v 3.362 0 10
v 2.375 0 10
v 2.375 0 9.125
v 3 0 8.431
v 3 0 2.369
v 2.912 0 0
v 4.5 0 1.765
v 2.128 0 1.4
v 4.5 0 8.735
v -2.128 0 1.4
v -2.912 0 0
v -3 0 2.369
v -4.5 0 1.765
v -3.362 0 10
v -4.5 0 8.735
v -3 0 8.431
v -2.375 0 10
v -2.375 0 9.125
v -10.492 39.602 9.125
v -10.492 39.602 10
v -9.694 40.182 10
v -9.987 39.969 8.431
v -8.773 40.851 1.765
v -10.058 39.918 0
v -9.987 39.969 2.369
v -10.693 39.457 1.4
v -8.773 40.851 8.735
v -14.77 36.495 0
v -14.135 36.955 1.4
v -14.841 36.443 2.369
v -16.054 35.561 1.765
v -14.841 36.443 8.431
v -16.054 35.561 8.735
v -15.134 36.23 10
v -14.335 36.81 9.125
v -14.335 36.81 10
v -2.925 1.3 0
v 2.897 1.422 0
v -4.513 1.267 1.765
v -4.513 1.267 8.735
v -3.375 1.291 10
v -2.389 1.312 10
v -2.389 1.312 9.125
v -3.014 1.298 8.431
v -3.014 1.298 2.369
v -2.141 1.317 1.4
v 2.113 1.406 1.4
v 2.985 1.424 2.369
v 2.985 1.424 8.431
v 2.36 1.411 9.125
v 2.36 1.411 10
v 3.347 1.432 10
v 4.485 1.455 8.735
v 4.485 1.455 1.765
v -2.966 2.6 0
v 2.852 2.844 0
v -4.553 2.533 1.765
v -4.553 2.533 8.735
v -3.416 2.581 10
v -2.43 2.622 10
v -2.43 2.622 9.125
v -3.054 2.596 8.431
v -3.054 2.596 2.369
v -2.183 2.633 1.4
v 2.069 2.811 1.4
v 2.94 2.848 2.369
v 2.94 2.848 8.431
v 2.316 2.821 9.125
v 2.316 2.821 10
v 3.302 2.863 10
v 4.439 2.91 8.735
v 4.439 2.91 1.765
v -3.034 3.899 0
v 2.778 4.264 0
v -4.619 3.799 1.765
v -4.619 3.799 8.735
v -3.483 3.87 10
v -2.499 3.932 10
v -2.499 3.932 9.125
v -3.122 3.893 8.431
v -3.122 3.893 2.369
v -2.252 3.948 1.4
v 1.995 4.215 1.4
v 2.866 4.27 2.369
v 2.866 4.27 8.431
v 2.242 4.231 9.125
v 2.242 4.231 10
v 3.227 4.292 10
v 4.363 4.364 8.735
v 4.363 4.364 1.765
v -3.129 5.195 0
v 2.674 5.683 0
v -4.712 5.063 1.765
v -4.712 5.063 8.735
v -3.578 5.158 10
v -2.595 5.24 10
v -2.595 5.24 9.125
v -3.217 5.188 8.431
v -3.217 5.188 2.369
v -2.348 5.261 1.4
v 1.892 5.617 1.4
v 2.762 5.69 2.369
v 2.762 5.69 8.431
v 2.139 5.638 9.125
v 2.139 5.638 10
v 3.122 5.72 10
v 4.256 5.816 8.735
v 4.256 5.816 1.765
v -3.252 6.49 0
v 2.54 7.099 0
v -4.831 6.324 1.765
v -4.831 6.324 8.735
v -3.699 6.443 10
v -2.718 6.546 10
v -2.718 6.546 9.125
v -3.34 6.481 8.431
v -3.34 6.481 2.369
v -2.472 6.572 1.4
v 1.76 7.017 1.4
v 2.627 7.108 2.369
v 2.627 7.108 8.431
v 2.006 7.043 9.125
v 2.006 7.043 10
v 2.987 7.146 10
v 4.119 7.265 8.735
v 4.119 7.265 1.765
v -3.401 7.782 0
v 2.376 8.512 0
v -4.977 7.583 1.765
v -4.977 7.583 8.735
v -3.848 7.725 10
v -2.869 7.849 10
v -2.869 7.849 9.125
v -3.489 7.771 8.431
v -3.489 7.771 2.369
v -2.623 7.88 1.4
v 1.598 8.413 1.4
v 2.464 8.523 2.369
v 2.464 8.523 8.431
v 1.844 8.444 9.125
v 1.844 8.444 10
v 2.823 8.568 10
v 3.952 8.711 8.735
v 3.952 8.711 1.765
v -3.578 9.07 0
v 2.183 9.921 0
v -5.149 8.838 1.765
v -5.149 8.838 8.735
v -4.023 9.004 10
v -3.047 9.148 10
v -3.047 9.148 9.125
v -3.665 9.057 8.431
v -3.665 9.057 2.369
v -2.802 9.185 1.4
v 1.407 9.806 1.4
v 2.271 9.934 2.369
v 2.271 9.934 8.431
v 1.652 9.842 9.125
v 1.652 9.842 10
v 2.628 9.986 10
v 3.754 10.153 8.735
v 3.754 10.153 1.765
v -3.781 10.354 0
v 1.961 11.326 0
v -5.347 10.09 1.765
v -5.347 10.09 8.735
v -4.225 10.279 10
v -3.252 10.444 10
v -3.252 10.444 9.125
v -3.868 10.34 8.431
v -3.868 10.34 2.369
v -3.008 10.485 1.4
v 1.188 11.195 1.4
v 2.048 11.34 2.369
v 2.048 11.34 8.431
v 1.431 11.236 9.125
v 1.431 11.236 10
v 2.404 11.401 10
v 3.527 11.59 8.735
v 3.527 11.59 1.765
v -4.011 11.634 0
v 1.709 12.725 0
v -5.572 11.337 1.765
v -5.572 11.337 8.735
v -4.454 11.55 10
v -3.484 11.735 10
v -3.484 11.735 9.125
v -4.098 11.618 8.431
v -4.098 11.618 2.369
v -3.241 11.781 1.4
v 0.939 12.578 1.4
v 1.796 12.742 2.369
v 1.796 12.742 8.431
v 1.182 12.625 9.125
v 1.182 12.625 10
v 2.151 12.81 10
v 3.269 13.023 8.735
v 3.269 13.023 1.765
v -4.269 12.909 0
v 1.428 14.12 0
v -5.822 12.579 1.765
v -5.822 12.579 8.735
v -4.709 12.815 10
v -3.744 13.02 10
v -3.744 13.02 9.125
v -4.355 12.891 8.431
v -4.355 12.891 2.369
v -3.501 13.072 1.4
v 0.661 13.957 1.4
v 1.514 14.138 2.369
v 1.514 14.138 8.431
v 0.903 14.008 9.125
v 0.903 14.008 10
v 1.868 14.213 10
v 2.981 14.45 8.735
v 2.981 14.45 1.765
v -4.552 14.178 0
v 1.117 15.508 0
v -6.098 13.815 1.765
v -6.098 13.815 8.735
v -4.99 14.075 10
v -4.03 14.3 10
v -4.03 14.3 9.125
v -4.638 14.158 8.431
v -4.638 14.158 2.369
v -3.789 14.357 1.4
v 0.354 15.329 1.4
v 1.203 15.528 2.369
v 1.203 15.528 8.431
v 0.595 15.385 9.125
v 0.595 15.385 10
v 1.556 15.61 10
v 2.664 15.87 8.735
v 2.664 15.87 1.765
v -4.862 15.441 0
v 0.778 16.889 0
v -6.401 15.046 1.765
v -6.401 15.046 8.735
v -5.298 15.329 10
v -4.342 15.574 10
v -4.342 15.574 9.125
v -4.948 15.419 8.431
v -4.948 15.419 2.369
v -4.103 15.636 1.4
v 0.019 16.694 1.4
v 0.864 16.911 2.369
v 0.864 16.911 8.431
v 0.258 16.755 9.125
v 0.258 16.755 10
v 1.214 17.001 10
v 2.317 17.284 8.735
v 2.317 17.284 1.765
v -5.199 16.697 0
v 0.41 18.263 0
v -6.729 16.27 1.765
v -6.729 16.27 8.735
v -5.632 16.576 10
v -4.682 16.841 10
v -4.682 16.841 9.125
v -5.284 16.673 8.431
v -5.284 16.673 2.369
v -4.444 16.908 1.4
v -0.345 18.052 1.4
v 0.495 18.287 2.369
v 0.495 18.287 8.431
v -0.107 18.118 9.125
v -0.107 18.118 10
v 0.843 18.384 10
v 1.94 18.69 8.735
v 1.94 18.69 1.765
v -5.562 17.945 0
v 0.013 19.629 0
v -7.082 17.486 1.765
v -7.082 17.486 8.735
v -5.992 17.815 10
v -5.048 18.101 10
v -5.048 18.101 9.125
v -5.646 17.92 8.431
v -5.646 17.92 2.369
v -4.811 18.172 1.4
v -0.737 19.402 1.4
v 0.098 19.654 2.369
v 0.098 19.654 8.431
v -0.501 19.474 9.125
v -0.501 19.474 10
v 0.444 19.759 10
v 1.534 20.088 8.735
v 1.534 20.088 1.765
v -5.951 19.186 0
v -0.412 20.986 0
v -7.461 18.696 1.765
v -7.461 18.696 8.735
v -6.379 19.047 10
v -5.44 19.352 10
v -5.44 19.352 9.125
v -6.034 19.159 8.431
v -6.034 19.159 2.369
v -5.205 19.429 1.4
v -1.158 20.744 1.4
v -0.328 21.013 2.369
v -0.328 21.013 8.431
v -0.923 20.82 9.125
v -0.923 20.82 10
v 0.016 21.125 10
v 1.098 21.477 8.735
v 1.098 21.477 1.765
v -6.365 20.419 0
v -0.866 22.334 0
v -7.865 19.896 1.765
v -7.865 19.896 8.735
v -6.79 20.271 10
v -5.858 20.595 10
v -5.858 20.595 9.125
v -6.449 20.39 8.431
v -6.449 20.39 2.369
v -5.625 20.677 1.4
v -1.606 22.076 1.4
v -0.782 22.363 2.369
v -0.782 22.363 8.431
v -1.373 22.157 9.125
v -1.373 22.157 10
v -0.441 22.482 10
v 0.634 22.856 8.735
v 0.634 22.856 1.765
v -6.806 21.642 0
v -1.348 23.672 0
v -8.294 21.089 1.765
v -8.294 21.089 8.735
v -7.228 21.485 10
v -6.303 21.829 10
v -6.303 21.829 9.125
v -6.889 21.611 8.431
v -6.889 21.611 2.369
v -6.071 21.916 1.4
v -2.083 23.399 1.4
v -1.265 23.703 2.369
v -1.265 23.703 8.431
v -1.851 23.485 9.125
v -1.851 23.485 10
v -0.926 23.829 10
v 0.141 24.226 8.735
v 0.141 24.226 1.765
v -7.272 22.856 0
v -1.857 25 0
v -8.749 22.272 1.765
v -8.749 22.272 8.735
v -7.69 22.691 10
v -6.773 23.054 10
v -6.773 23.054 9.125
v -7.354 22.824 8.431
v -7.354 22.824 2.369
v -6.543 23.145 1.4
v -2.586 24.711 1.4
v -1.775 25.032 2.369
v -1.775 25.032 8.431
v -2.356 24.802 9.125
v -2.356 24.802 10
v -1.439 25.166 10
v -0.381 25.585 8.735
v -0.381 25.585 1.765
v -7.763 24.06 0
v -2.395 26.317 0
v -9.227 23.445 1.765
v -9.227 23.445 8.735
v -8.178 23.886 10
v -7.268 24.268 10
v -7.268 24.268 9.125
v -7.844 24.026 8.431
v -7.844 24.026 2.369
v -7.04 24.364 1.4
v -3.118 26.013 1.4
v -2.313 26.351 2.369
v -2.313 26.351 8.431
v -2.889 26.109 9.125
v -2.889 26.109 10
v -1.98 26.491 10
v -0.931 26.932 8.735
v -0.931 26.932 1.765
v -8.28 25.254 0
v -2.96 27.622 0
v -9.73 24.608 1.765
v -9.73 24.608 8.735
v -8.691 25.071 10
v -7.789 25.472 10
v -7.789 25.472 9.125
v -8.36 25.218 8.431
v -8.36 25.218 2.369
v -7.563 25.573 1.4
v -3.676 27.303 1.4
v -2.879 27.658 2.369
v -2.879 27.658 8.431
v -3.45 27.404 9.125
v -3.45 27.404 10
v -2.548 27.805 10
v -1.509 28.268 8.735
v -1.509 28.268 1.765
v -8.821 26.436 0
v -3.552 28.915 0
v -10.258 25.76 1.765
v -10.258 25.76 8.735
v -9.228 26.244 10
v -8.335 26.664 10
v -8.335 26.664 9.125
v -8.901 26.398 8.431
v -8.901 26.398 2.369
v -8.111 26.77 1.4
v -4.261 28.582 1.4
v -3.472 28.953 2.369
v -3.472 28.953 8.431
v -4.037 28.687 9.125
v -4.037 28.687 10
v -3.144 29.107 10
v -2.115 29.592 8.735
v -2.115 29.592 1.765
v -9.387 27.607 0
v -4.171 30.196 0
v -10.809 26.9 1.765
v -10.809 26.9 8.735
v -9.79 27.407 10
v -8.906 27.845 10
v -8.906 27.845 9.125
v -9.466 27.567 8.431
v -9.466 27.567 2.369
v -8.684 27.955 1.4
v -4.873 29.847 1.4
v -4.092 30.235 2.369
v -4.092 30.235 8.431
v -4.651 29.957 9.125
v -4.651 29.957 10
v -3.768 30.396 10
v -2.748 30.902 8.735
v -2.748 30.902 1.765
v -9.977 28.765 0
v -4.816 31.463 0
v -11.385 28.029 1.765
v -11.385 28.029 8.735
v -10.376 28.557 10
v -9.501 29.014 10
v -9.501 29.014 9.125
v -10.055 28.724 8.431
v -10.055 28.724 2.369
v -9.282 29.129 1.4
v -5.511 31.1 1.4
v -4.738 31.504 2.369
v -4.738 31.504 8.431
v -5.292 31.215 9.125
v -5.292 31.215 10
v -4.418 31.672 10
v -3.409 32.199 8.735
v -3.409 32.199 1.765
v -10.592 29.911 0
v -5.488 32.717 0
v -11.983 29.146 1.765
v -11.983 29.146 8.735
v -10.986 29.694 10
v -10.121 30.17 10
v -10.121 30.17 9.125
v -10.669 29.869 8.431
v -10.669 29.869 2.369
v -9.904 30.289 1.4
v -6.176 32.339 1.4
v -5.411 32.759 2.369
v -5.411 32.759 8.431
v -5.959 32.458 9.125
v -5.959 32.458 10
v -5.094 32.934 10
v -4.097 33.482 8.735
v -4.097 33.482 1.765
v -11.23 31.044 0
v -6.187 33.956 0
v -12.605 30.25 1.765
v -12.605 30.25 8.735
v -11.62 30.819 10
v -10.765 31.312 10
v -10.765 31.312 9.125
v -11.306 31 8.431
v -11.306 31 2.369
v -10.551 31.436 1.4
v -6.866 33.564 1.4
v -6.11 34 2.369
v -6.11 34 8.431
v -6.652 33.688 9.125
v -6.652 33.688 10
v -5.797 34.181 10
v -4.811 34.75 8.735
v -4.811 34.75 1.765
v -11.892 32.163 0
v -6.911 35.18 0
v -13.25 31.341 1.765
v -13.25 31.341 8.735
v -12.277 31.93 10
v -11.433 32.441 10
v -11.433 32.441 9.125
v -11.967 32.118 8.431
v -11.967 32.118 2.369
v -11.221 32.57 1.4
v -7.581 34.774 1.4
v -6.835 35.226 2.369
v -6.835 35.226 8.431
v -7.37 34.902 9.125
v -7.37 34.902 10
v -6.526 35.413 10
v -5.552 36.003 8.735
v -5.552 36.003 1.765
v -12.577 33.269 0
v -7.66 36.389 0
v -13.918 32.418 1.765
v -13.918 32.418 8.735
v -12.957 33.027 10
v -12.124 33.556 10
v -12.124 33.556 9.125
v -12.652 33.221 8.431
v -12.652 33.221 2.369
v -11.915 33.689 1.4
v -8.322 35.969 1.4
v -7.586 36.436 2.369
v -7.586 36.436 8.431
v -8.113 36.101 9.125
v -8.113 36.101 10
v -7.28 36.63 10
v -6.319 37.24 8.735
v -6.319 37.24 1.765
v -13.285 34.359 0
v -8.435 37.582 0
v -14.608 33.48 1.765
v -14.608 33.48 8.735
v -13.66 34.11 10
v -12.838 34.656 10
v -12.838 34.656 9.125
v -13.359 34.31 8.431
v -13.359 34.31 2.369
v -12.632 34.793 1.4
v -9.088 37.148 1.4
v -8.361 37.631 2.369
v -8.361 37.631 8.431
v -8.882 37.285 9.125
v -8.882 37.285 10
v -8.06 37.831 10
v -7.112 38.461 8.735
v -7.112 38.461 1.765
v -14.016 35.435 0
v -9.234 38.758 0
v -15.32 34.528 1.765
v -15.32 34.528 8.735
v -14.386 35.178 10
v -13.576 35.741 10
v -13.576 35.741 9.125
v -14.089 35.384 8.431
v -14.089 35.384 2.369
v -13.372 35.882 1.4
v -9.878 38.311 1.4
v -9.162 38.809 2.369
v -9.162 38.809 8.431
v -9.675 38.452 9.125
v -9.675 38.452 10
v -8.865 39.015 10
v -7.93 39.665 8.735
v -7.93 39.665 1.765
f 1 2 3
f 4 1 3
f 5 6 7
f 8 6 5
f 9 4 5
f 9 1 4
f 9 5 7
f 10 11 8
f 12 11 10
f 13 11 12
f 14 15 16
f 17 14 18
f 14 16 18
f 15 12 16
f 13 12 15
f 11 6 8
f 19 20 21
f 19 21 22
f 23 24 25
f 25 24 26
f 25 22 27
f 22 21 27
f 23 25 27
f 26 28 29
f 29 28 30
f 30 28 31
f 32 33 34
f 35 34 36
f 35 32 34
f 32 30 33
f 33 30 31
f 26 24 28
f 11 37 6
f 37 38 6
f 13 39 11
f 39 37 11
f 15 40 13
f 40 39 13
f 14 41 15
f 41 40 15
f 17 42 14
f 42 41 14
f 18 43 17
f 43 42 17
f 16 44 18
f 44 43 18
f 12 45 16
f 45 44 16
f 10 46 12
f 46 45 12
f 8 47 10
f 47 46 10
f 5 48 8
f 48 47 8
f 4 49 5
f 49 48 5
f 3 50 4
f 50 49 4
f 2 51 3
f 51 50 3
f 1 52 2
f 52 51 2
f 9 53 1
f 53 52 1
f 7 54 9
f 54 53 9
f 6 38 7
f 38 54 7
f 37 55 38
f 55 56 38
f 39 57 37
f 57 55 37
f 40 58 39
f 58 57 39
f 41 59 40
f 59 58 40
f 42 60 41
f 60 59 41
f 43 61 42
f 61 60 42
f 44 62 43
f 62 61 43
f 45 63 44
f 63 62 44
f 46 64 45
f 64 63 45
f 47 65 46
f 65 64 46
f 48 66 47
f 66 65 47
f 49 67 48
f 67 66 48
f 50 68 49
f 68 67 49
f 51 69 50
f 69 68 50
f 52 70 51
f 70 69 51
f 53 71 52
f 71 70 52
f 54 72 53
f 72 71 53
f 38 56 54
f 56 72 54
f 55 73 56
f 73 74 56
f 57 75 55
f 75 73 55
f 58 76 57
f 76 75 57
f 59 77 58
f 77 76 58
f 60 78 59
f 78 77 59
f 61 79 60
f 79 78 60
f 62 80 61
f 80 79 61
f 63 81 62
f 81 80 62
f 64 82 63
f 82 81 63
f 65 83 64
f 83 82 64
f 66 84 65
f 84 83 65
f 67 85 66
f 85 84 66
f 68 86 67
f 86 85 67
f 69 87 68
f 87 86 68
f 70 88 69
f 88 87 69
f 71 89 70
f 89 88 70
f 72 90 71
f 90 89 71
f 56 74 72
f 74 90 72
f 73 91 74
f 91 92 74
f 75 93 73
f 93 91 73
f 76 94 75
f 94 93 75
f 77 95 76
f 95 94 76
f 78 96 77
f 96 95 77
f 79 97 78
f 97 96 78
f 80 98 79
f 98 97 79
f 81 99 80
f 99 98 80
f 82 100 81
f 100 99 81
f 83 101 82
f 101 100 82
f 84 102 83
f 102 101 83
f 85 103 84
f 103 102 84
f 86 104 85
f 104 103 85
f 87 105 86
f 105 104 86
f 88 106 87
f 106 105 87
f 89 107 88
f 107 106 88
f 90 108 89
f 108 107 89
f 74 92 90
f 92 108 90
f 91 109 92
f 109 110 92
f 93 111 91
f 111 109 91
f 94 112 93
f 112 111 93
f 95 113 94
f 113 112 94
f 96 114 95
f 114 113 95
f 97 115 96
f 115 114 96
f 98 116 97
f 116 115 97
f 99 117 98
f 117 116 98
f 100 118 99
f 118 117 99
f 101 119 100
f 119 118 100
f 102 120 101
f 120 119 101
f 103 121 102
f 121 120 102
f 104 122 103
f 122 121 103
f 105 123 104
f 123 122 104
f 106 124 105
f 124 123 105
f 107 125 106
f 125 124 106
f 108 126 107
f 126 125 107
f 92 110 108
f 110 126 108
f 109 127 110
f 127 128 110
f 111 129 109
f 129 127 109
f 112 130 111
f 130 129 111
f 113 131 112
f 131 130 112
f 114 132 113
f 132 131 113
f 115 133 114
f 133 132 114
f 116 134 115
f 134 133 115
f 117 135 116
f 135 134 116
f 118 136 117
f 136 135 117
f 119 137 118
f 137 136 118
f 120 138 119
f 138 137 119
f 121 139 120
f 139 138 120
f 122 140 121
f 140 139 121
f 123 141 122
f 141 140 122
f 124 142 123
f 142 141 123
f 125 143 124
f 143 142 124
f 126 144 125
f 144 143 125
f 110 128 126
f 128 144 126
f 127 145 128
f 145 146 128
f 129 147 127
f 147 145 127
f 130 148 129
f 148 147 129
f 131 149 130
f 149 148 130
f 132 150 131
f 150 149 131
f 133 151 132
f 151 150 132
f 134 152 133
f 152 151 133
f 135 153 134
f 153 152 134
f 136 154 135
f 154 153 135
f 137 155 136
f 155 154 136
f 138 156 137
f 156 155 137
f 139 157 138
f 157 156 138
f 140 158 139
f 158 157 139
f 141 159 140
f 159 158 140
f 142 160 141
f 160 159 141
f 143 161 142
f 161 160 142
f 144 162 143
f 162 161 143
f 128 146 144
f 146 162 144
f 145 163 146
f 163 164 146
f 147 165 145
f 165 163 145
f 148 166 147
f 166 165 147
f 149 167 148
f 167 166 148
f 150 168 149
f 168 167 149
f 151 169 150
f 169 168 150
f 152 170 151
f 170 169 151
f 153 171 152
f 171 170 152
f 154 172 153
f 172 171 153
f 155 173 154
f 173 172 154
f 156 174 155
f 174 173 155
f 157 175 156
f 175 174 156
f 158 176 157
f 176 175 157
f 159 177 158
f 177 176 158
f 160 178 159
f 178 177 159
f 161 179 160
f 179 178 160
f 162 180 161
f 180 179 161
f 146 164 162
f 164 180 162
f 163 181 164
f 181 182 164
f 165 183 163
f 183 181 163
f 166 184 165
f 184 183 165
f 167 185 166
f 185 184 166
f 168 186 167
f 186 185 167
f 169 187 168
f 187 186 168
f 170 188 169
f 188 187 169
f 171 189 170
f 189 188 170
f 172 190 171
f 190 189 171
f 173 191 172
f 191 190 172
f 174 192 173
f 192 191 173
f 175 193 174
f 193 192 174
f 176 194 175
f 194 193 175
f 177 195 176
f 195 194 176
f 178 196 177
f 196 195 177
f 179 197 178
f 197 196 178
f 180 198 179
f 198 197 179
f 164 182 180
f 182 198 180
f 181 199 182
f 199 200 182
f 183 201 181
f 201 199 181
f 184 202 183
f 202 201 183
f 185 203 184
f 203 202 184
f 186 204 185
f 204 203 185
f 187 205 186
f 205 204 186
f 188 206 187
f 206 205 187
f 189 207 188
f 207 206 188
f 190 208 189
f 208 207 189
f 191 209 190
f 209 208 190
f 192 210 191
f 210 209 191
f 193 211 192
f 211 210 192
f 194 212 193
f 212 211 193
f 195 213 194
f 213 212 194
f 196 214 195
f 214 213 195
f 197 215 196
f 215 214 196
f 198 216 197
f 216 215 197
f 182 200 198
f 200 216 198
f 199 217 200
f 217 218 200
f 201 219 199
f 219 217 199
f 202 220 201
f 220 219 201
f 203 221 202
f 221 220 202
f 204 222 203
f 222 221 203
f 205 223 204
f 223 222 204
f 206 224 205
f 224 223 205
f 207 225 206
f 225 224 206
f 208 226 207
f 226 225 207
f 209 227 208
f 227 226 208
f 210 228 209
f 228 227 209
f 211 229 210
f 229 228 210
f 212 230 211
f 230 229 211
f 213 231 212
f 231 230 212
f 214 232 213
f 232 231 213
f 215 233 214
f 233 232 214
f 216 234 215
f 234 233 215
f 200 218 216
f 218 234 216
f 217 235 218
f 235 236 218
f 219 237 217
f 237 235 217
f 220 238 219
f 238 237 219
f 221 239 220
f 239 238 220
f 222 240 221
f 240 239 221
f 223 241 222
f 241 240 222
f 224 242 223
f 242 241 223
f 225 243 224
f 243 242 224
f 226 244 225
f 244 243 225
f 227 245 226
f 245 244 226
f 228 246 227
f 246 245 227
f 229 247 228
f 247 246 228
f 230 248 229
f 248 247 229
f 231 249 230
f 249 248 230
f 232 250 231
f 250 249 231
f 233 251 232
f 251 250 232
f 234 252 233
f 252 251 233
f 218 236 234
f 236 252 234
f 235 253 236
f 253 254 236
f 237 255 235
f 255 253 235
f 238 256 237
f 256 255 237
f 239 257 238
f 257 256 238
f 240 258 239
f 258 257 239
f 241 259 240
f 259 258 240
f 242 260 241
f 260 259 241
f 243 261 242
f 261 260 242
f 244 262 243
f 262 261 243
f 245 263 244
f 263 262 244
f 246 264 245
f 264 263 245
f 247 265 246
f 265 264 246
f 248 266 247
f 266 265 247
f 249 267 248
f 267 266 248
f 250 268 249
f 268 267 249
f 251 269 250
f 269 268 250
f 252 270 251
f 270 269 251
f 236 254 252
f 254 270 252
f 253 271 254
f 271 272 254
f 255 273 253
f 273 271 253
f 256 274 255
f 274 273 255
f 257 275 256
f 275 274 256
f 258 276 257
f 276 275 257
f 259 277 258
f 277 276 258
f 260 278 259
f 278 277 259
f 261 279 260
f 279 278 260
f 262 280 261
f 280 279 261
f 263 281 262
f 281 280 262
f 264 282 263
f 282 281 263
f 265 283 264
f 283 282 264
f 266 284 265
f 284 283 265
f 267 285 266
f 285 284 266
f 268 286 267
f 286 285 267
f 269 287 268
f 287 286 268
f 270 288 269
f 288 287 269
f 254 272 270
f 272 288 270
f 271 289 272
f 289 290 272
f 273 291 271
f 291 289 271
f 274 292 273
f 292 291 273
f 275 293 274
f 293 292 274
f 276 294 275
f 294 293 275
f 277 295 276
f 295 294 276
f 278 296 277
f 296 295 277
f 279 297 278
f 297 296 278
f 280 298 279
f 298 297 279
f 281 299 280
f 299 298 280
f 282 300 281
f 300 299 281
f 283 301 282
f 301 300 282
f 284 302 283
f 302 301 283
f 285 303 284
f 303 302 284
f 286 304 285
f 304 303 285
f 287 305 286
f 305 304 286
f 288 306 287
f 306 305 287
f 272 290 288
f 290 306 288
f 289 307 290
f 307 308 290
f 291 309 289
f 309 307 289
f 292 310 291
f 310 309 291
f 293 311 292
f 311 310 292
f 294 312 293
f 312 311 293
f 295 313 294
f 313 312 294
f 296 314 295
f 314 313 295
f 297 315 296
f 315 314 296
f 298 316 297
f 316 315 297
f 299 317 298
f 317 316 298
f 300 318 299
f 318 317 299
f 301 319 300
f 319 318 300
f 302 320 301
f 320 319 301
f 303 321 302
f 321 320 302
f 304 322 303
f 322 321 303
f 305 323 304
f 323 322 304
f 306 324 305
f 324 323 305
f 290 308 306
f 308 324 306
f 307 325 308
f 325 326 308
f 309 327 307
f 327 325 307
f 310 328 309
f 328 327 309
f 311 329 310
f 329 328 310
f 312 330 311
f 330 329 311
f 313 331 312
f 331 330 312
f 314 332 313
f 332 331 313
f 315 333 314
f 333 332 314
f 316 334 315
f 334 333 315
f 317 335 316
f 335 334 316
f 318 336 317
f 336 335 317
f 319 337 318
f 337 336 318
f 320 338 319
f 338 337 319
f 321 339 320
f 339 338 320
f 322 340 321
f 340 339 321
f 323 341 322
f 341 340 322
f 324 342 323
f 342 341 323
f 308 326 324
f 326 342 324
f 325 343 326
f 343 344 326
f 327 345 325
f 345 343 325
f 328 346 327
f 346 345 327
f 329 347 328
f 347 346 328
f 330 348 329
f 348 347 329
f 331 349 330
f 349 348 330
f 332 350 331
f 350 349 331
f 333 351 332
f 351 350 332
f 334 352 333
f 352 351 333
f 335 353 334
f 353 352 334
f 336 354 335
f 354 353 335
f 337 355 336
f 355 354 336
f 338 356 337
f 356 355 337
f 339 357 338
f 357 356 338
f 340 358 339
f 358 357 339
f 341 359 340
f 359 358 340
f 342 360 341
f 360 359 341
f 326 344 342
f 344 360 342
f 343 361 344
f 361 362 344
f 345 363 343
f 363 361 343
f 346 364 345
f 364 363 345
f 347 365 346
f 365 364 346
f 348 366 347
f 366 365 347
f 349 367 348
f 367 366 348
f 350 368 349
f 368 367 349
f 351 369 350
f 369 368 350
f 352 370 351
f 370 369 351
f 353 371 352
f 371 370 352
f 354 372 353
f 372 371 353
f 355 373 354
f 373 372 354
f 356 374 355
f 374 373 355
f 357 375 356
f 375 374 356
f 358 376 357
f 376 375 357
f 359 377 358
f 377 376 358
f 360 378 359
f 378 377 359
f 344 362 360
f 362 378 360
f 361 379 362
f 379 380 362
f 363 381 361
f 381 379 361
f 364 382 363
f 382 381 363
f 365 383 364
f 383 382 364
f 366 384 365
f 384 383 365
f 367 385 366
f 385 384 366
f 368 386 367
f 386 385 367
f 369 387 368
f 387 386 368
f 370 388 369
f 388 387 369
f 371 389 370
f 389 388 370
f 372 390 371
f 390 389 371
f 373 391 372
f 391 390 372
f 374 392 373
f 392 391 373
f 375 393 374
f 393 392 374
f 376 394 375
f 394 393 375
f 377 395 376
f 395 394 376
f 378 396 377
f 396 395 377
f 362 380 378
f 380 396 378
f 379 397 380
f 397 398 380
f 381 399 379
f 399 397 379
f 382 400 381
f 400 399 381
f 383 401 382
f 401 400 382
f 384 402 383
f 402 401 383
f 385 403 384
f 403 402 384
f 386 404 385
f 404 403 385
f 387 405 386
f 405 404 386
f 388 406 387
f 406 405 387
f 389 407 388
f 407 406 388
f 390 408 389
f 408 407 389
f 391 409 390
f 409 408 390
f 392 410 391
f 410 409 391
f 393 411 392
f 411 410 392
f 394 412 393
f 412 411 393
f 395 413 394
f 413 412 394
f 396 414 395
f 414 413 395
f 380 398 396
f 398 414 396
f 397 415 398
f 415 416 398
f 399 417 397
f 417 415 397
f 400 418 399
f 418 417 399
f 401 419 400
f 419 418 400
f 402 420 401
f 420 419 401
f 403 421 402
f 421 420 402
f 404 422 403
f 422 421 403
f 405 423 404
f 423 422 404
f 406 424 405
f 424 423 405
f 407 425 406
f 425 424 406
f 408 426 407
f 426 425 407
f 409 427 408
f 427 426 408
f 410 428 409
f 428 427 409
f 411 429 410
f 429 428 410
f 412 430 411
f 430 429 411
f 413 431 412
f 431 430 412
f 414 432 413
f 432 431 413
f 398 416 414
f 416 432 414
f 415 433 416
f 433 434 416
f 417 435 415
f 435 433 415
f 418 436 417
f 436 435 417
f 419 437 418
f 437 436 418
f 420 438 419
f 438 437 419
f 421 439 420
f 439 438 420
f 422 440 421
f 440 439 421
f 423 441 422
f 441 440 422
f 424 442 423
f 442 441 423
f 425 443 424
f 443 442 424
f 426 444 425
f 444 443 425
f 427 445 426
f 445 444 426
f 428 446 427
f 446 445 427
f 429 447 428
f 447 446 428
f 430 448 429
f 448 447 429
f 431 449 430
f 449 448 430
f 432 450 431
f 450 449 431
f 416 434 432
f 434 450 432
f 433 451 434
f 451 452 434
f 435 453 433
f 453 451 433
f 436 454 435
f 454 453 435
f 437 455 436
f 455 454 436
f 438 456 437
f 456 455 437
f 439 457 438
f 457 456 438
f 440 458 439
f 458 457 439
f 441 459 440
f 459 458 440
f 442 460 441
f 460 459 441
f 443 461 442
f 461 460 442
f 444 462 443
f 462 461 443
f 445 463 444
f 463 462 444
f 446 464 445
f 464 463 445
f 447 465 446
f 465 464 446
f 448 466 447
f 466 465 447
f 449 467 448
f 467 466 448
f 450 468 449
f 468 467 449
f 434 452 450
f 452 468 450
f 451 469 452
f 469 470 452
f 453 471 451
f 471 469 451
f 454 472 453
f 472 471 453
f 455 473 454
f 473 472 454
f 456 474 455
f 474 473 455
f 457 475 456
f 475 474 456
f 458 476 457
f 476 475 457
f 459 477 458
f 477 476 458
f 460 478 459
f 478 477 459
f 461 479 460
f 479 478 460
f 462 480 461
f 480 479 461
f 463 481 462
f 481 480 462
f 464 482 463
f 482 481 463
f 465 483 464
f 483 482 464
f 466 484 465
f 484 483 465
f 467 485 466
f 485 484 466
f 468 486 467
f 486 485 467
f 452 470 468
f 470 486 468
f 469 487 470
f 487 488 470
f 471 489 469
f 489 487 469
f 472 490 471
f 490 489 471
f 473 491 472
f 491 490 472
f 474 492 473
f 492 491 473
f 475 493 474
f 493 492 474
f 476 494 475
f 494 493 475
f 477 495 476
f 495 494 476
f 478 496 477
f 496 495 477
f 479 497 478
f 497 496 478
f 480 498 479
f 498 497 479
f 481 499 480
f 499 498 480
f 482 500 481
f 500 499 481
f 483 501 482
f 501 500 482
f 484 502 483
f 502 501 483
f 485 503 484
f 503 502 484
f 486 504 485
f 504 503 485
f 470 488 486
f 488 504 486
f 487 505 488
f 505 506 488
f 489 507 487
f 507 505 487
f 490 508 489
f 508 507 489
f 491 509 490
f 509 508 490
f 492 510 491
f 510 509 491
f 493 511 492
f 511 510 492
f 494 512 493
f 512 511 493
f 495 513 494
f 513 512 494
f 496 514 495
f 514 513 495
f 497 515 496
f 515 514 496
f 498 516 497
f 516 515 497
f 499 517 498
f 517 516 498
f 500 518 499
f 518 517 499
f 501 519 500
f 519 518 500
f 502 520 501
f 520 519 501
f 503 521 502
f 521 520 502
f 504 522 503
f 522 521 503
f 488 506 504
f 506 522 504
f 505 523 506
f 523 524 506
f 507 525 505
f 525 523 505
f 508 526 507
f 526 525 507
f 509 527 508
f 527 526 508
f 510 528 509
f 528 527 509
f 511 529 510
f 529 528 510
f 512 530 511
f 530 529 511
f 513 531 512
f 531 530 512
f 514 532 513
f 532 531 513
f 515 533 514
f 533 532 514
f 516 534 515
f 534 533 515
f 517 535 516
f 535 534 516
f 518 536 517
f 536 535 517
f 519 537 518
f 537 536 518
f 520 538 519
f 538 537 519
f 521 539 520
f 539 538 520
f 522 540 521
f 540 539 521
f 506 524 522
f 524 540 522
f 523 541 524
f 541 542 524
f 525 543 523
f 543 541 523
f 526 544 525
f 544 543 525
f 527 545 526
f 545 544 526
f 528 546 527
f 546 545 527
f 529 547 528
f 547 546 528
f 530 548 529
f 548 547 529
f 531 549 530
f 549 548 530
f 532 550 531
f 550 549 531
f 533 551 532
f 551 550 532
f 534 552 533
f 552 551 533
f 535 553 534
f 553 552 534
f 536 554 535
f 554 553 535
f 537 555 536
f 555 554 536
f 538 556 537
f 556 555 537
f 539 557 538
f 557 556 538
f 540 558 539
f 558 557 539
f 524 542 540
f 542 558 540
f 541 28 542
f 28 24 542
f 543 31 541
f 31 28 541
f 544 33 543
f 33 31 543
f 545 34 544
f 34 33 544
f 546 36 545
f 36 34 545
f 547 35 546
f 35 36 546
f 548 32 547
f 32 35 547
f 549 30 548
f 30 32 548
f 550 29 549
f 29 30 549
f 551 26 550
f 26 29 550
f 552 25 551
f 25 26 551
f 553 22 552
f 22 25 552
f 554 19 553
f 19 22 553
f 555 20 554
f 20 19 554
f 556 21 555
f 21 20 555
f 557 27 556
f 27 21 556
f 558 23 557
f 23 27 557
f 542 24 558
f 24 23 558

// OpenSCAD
module footprint() {
  difference() {
    scale([.9,1]) intersection() {
      square(10, center=true);
      translate([0,.25]) rotate(45) square(12, center=true);
    }
    translate([0,.4]) intersection() {
      square([6,8], center=true);
      scale([.9,1]) rotate(45) square(9, center=true);
    }
    translate([0,3]) square(4.75, center=true);
  }
}

$fn = 300;

displace = 65;

translate([-displace,0]) rotate_extrude(angle=36) translate([displace,5]) footprint();
